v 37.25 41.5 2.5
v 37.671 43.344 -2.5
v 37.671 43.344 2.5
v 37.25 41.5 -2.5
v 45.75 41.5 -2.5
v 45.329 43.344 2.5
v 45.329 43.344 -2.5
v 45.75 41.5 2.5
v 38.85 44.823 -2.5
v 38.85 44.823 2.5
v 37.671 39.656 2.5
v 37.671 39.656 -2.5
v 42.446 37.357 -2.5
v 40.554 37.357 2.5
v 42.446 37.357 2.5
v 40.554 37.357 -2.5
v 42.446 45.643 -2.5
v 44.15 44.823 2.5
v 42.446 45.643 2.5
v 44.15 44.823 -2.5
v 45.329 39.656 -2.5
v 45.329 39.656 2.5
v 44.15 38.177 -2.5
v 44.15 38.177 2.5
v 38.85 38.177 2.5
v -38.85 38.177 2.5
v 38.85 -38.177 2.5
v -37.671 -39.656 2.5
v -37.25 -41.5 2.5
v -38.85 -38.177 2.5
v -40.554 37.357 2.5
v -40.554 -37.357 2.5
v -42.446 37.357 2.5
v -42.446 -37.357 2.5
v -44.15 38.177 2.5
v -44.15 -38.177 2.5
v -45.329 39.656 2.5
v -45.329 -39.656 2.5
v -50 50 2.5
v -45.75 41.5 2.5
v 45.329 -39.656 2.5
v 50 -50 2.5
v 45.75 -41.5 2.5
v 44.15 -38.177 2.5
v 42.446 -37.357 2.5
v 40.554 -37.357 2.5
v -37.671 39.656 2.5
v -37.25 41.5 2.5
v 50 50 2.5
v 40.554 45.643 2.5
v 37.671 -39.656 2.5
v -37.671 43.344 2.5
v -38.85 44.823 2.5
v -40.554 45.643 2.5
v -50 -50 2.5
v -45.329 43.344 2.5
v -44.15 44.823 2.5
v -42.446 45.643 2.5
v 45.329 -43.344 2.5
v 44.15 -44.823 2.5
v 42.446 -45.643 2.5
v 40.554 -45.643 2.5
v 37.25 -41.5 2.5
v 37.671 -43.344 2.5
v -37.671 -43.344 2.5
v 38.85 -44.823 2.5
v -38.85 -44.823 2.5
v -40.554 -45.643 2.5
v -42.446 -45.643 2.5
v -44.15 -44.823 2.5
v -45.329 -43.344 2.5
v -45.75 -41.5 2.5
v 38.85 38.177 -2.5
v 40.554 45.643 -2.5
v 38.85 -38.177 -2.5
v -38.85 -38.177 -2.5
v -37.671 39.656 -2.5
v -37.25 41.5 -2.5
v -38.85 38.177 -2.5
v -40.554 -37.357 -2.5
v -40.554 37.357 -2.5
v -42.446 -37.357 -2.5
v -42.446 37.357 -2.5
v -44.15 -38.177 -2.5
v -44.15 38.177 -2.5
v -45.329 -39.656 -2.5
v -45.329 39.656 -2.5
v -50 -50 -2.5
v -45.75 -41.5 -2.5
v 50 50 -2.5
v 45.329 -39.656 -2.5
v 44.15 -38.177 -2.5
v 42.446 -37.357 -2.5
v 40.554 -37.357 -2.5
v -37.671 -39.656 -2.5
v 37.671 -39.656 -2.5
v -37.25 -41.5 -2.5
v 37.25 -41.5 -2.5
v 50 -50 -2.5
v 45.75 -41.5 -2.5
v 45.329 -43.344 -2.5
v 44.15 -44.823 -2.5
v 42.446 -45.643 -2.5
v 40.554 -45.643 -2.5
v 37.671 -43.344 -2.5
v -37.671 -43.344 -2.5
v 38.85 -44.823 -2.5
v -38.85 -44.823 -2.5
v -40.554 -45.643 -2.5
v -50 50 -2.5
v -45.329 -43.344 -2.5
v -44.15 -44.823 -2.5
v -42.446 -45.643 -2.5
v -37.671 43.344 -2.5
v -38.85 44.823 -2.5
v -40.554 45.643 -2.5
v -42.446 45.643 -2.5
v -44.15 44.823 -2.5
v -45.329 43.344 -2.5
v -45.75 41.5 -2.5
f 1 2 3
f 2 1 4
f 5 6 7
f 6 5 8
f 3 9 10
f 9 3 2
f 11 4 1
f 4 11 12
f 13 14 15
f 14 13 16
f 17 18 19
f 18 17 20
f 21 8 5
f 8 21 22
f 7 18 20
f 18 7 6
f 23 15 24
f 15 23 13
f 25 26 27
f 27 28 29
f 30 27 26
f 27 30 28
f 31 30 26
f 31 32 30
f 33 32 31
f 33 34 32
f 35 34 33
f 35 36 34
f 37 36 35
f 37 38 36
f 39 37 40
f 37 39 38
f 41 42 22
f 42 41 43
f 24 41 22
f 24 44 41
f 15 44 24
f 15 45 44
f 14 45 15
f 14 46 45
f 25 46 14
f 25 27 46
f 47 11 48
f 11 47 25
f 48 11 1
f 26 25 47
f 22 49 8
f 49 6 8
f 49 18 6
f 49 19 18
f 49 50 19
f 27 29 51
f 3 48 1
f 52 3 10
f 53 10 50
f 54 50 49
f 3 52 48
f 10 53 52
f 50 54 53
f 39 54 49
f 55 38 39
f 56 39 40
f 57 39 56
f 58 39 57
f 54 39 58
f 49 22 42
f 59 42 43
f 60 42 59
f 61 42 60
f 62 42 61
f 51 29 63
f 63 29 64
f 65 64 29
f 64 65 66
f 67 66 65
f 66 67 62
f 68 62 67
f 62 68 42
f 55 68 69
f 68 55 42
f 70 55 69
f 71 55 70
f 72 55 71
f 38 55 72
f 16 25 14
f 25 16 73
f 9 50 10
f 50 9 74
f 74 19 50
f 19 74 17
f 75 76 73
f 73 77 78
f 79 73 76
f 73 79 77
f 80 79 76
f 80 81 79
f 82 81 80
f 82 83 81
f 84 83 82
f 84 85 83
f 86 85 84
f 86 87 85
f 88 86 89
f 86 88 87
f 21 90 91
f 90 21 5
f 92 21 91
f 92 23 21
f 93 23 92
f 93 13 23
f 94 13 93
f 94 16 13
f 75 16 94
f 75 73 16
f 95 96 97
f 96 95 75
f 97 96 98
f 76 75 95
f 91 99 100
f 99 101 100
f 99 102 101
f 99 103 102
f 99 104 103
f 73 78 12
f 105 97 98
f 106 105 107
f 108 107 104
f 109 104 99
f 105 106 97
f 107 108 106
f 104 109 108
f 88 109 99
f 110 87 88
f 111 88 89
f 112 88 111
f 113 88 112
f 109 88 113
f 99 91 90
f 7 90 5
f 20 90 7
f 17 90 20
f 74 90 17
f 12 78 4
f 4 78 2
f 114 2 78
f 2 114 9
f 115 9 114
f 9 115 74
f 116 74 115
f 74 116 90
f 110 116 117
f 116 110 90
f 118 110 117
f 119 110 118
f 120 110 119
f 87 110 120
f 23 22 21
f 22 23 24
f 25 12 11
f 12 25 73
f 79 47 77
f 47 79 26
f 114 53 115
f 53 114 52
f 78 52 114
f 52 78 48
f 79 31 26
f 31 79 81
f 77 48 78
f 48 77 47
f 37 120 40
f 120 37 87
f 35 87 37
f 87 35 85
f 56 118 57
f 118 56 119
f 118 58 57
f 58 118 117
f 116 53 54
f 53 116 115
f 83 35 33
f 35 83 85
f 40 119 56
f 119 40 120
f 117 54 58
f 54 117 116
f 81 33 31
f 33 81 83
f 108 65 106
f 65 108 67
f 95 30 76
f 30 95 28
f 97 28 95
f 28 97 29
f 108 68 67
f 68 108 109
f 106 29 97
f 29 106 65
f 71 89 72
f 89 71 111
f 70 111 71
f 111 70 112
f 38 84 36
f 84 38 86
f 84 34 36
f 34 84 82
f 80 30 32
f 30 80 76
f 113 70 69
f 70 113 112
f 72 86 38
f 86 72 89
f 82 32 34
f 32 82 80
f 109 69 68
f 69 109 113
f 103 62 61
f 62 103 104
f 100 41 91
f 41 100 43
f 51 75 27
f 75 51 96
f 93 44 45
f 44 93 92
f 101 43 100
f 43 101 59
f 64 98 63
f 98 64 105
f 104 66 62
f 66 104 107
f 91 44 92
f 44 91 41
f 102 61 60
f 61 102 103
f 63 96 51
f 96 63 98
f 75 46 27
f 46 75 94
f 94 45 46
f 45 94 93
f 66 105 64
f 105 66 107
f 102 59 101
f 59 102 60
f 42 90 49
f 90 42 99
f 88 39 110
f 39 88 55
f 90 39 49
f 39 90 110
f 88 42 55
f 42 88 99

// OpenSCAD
// Generated by SolidPython 1.1.3 on 2023-07-07 07:12:54


difference() {
	cube(center = true, size = [100, 100, 5]);
	union() {
		translate(v = [41.5000000000, 41.5000000000]) {
			cylinder(center = true, h = 5, r = 4.2500000000);
		}
		translate(v = [-41.5000000000, 41.5000000000]) {
			cylinder(center = true, h = 5, r = 4.2500000000);
		}
		translate(v = [-41.5000000000, -41.5000000000]) {
			cylinder(center = true, h = 5, r = 4.2500000000);
		}
		translate(v = [41.5000000000, -41.5000000000]) {
			cylinder(center = true, h = 5, r = 4.2500000000);
		}
	}
}
/***********************************************
*********      SolidPython code:      **********
************************************************
 
import solid
import numbers
import pudb
from solid.utils import *
import viewscad
import subprocess
import os
import os.path as osp
import math
import sys

chamfer_extrude=solid.import_scad("./chamfer_extrude.scad")
chamfer_extrude=chamfer_extrude.chamfer_extrude
r = viewscad.Renderer(width=800, height=800)

def debug(model,f_name,path="/home/ts/code/projects/mfd/designs/debug"):
    solid.scad_render_to_file(model,osp.join(path,f_name)+".scad")
#generate position list of wells using offset from center
wells_pos_from_center_4 = lambda offset: [[-offset,offset],
                                        [offset, offset],
                                        [-offset, -offset],
                                        [offset, -offset]]
#wells_pos_from_center_2 = lambda offset: [[0,offset],
#                                        [0, -offset]]
wells_pos_from_center_2 = lambda offset: [[offset,0],
                                        [-offset,0]]

def make_well(dims,shape=None,height=None,dxf=False):
    def circle_cylinder():
        if dxf or (height is None):
            well = solid.circle(r=dims, segments=64)
        else:
            well = solid.cylinder(r=dims, h=height, segments=64, center = True)
        return well
    if dims is None:
        sys.exit("radius needs to be a number")
    if isinstance(dims, numbers.Number):
        well =circle_cylinder()
    elif len(dims)==1:
        if isinstance(dims[1], numbers.Number):
            well =circle_cylinder()
        else:
            sys.exit("radius needs to be a number")
    elif len(dims)==2:
        well = solid.square(dims,center = True)
    elif len(dims)==3:
        well = solid.cube(dims, center = True)
    return well

def wells_top_bottom(center_gap,device_dims=None,shape=None,height=None, positions = None, dxf = False):
    well_shape = make_well(device_dims,shape=shape,height=height,dxf=dxf)
    wells = []
    if positions is None:
        offset = radius+radius/2.0
        positions = wells_pos_from_center_2(offset)
    if dxf or (height is None):
        height = 0
    for position in positions:
        if dxf:
            wells.append(solid.translate([position[0],position[1]])(well_shape))
        else:
            wells.append(solid.translate([position[0],position[1],height/2.0])(well_shape))
    return  union()(*wells)

#place wells in four corners 
def four_corner(radius,height=None, positions = None, dxf = False):
    #if well pos not specified set
    #to equally spaced by half radius
    if positions is None:
        offset = radius+radius/2.0
        positions = wells_pos_from_center_4(offset)
    if dxf or (height is None):
        height = 0
    #make wells at positions with specified radius and height
    wells = []
    for position in positions:
        #make circle if making dxf
        if dxf:
            well_shape = solid.circle(r=radius, segments=64)
            well_shape = solid.translate([position[0],position[1]])(well_shape)
        #if stl make cylinder
        else:
            well_shape = solid.cylinder(r=radius, h=height, segments=64, center = True)
            well_shape = solid.translate([position[0],position[1],height/2.0])(well_shape)
        wells.append(well_shape)
    return  union()(*wells)

#generate channels 
def make_channels(length,width,height=0,num_chans=1,max_chans=None,spacing=None, dxf = False,
                  rotate_channels=False):
    if dxf or (height is None):
        height = 0
    #if channel gap not defined, is equal to
    if spacing is None: spacing = width
    #calculate number of channels if fitting max num within given width
    if not max_chans is None:
        import math
        num_chans = math.floor((max_chans-spacing)/(width+spacing))
    #get total width of channel section  
    total_width = (width*num_chans)+(spacing*(num_chans-1))

    #make template channel
    #if rotate_channels: width, length = length, width
    if dxf:
        channel_t = solid.square([length,width],center = True)
    else:
        channel_t = solid.cube([length,width,height], center = True)

    #if number channels is even, offset the first channel to center its gap
    if num_chans % 2 == 0: centering = -(width/2.0+spacing/2.0)
    else: centering = 0
    #move template channel up to align bottom at z = 0 
    #and offset center if necessary
    if dxf:
        channel_t = solid.translate([0,centering])(channel_t)
    else:
        channel_t = solid.translate([0,centering,height/2.0])(channel_t)

    #if rotate_channels: length,width = width,length
    #start making the channels
    channels = []
    for i in range(num_chans):
        #if i=0 there is no translation
        #if i=1, we make the first channel adjacent to second
        direction = i

        #if i>=1, we add channels alternating left and right
        if i >= 1:
            direction = -(i/2.0)
            if i % 2 == 1: direction = (-direction)+0.5
                
        #make channel at right position and add it to channel list
        translation_coords = [0,direction*(width+spacing)]
        #if rotate_channels: translation_coords = [direction*(width+spacing),0]
        if dxf:
            channel = solid.translate(translation_coords)(channel_t)
        else:
            channel = solid.translate([*translation_coords,0])(channel_t)
        channels.append(channel)
    
    #group all channels as one object
    channels = union()(*channels)
    #compute the x,y,z dimensions in order to pass as arguments 
    #for construction of other parts of device (such as the chambers)
    measurements = {'x':(length/2.0,-length/2.0),
                    'y':(total_width/2.0,-total_width/2.0)}
    if not dxf:
        measurements['z'] = (height,0)
    if rotate_channels:
        channels = solid.rotate(90)(channels)
        measurements['x'],measurements['y']=measurements['y'],measurements['x']
    return channels,measurements

def make_chambers(msrs,height=None,extra=0,len_until=None,width=None, dxf = False):
    #computes x,y,z length
    total = lambda x : abs(x[0]) + abs(x[1])
    
    #if specific height if specified
    #otherwise use same height as channels
    if dxf:
        pass
    elif not height is None:
        msrs['z'] = (height,0)
    else:
        msrs['z'] = (0,0)
        
    #make copy of measurements from channels to modify chamber dimensions 
    #and add length to chambers as specified
    chamber_dims = msrs.copy()
    #calculate length of chamber to reach specified offset
    if not len_until is None:
        chamber_len = len_until-(msrs['x'][0])
    #or add specified length to channel length (if not specified, adds 0)
    else:
        chamber_len = msrs['x'][0]+extra
    #set the chamber length based 
    chamber_dims['x'] = (chamber_len/2.0,-(chamber_len/2.0))
    #compute final dimensions of chamber
    if not width is None:
        chamber_dims['y'] = (width/2.0,-width/2.0)
    chamber_dims = [total(size) for size in chamber_dims.values()]
        
    #calculate chamber translation offset to place adjacent to channels
    chamber_trslt = msrs['x'][0]+(chamber_len/2.0)
    #compute chamber translation coordinates to align with channels
    #x = 1 moves chamber above channels
    #x = -1 moves chamber below channels
    if dxf:
        trslt = lambda x : [x*(chamber_trslt),0]
    else:
        trslt = lambda x : [x*(chamber_trslt),0,msrs['z'][0]/2.0]
    
    #function to make chamber at top or at bottom 
    if dxf:
        move = lambda x : solid.translate(trslt(x))(solid.square(chamber_dims, center = True) )
    else:
        move = lambda x : solid.translate(trslt(x))(solid.cube(chamber_dims,center = True))
    #make top and bottom chambers and return them as grouped
    top = move(1)
    bottom = move(-1)
    #chambers=solid.rotate(90)(solid.union()(top,bottom))
    chambers=(solid.union()(top,bottom))

    return chambers

#create alignment features 
def alignment_features(unit,dims,grid_size, mask_size = None, alignment = "hollow", units_from_center = (2.5,2.5), corner_len=None):
    width = grid_size[0]*dims[0]
    length = grid_size[1]*dims[1]
    if mask_size is None and corner_len is None:
        corner_len = (dims[0] + dims[1]) /2 / 8
    corner = lambda thickness_div : solid.union()( solid.square([corner_len,corner_len/thickness_div],center=False), solid.square([corner_len/thickness_div,corner_len],center=False) )
    
    def make_full(thickness_div):
        thickness = corner_len/thickness_div
        tr = solid.translate([0, 0, 0 ])(solid.rotate(180)(corner(thickness_div)))
        tr = solid.translate([thickness/2,thickness/2,0])(tr)
        bl = solid.translate([0, 0, 0 ])(solid.rotate(0)(corner(thickness_div)))
        bl = solid.translate([-thickness/2,-thickness/2,0])(bl)
        return solid.union()(tr,bl)
    
    def make_hollow(thickness_div):
        thickness = corner_len/(thickness_div/2)
        inner = make_full(thickness_div)
        outer = make_full(thickness_div/2)
        hollow = outer - inner 
        return hollow
    
    center = (width /2 , length/2)
    mask_pos = lambda x,y : (center[0] + x*(float(units_from_center[0])*dims[0]), center[1] + y*(float(units_from_center[1])*dims[1]))
    positions = []
    positions.append(mask_pos(1,0))
    positions.append(mask_pos(0,1))
    positions.append(mask_pos(-1,0))
    positions.append(mask_pos(0,-1))
    make_mask = lambda mtype : make_hollow(8) if mtype == "hollow" else make_full(8)
    masks = [ solid.translate([*position,0])(make_mask(alignment)) for position in positions]
    
    solid.scad_render_to_file(solid.union()(*masks),"./designs/open_chamber/masks.scad")
    #return unit - solid.union()(*masks)
    return solid.union()(*masks,unit)

def create_outline(thickness, array, dims, grid_size,):
    width = grid_size[0]*dims[0] + thickness *2
    length = grid_size[1]*dims[1] + thickness *2
    outer = solid.translate([-thickness, -thickness,0])(solid.square([width, length]))
    return outer-array

def create_wall(wall_thickness, outline_thickness, dims, grid_size, wall_height = 2000, dxf = False):
    inner_width = grid_size[0]*dims[0] + outline_thickness *2
    inner_length = grid_size[1]*dims[1] + outline_thickness *2
    outer_width = inner_width + wall_thickness * 2
    outer_length = inner_length + wall_thickness * 2
    outer_pos_x = -outline_thickness-wall_thickness
    outer_pos_y = -outline_thickness-wall_thickness
    inner_pos_x = -outline_thickness
    inner_pos_y = -outline_thickness
    if dxf:
        inner_wall = solid.translate([inner_pos_x,
                                      inner_pos_y,
                                      0])(solid.square([inner_width, inner_length]))
        outer_wall = solid.translate([outer_pos_x,
                                      outer_pos_y,
                                      0])(solid.square([outer_width, outer_length]))

        return outer_wall-inner_wall
    else:
        inner_wall = solid.translate([inner_pos_x,
                                      inner_pos_y,
                                      0])(solid.cube([inner_width, inner_length,wall_height]))
        outer_wall = solid.translate([outer_pos_x,
                                      outer_pos_y,
                                      0])(solid.cube([outer_width, outer_length,wall_height]))

        return outer_wall-inner_wall, {'wall_height': wall_height,
                                       'wall_thickness': wall_thickness,
                                       'inner_width':inner_width,
                                       'inner_length': inner_length,
                                       'outer_width': outer_width,
                                       'outer_length': outer_length,
                                       'outer_pos_x' : outer_pos_x,
                                       'outer_pos_y' : outer_pos_y,
                                       'inner_pos_x' : inner_pos_x,
                                       'inner_pos_y' : inner_pos_y}

def create_thicker_wall(wall_thickness, outer_wall_offset, wall_dims, dims, grid_size, height_start = .2, height_end=2, dxf = False):
    addon_wall,thicker_wall_dims = create_wall(wall_thickness, outer_wall_offset, dims, grid_size, wall_height=height_end-height_start, dxf = False)
    addon_wall = solid.translate([0,0,height_start])(addon_wall)

    thicker_wall_dims['wall_height'] = height_end
    thicker_wall_dims['wall_thickness'] = wall_dims['wall_thickness'] + wall_thickness
    return addon_wall, thicker_wall_dims
 
def add_lock_to_wall(wall,wall_dims,y_offset = 0,cut_ratio=0.7,L_length=3, gap_ratio=0.05, axis="x",width_ratio=1/2):
    # Makes L shape
    def make_L(max_length,length_thickness,max_width,width_thickness,height,y_offset):
        length = solid.cube([max_length,length_thickness,height])
        width = solid.cube([width_thickness,max_width,height])
        width = solid.translate([max_length-(width_thickness),0,0])(width)
        L = solid.union()(width,length)
        debug(L,"L")
        if axis == "x":
            L = solid.rotate(-90)(L)
            L = solid.translate([0,max_length,0])(L)
        else:
            L = solid.rotate(-180)(L)
            L = solid.translate([max_length,max_width,0])(L)
        return solid.translate([0,0,y_offset])(L)
    
    lock_length = L_length
    lock_width = wall_dims['wall_thickness']*width_ratio
    lock_length_thickness = lock_width/2
    lock_width_thickness = lock_width/2
    L_lock = make_L(lock_length,lock_length_thickness,lock_width,lock_width_thickness, wall_dims['wall_height']-y_offset, y_offset)
    
    margin_space = lock_length - lock_length*(1-gap_ratio)
    key_length = lock_length-margin_space
    key_length_thickness = lock_length_thickness-(margin_space*2)
    key_width = lock_width-(margin_space*2)
    key_width_thickness = lock_width_thickness-(margin_space*2)
    L_key = make_L(key_length,key_length_thickness,key_width,key_width_thickness, wall_dims['wall_height']-y_offset, y_offset)
    L_key = solid.translate([margin_space,margin_space,0])(L_key)
    L = solid.union()(L_lock,L_key)
    debug(L,"L")
    
    #Make cube to be used as negative to split frame in a half
    #Can choose if making left or right negative, specify ratio of split
    def make_negative(right,cut_ratio):
        if axis == "x":
            if right:
                length = wall_dims['outer_length']*(1-cut_ratio)
                pos_x = wall_dims['outer_pos_x']+(wall_dims['outer_length']*cut_ratio)
            else:
                length = wall_dims['outer_length']*(cut_ratio)
                pos_x = wall_dims['outer_pos_x'] 
            negative = solid.cube([wall_dims['outer_width'],length, wall_dims['wall_height']])
            negative = solid.translate([wall_dims['outer_pos_y'],pos_x,0])(negative)
        else:
            if right:
                length = wall_dims['outer_width']*(1-cut_ratio)
                pos_x = wall_dims['outer_pos_y']+(wall_dims['outer_width']*cut_ratio)
            else:
                length = wall_dims['outer_width']*(cut_ratio)
                pos_x = wall_dims['outer_pos_y'] 
            negative = solid.cube([length,wall_dims['outer_length'], wall_dims['wall_height']])
            negative = solid.translate([pos_x,wall_dims['outer_pos_x'],0])(negative)
        return negative, pos_x, length 
                      
    #Make negatives
    negative_right, right_half_pos_x, right_half_length = make_negative(True,cut_ratio)
    negative_left, left_half_pos_x, right_half_length = make_negative(False,cut_ratio)
    #Make halves
    left_half = solid.difference()(wall,negative_right)
    right_half = solid.difference()(wall,negative_left)
    def place_L(L, L_length,L_width):
        #Place L on top wall       
        offset_to_center = (wall_dims['wall_thickness']-L_width)/2
        if axis == "x":
            y_pos_top = (wall_dims['outer_pos_y'] +
                    wall_dims['outer_width'] - 
                    L_width - offset_to_center)
            top_L = solid.translate([y_pos_top,
                                     right_half_pos_x-(L_length),
                                     0])(L)
            #Place L on bottom wall       
            y_pos_bottom = wall_dims['outer_pos_y']+offset_to_center
            bottom_L = solid.translate([y_pos_bottom,
                                        right_half_pos_x-L_length,
                                        0])(L)
        else:
            y_pos_top = (wall_dims['outer_pos_x'] +
                    wall_dims['outer_length'] -
                    (L_width+offset_to_center))
            top_L = solid.translate([right_half_pos_x-L_length,
                                     y_pos_top,
                                     0])(L)
            #Place L on bottom wall       
            y_pos_bottom = wall_dims['outer_pos_y']+offset_to_center
            bottom_L = solid.translate([right_half_pos_x-L_length,
                                        y_pos_bottom,
                                        0])(L)
        return bottom_L, top_L
    #Make complimentary L pieces through union and differences
    #Make Lock
    bottom_L_lock, top_L_lock = place_L(L_lock,L_length,lock_width)
    left_half = solid.difference()(left_half,bottom_L_lock)
    left_half = solid.difference()(left_half,top_L_lock)
    #Make Key
    bottom_L_key, top_L_key = place_L(L_key,L_length,lock_width)
    right_half = solid.union()(right_half,bottom_L_key)
    right_half = solid.union()(right_half,top_L_key)
    return left_half, right_half


#build a row x col grid of containment units
def make_unit_array(unit,dims,grid_size, dxf = False, alignment = None, mask_size = None,
                    units_from_center = None,alignment_offset=None, alignment_mark_size=1):
    units = []
    for col in range(grid_size[1]):
        for row in range(grid_size[0]):
            if dxf:
                units.append(solid.translate([row*dims[0],col*dims[1]])(unit))
            else:
                units.append(solid.translate([row*dims[0],col*dims[1],dims[2]/2.0])(unit))
    array = solid.union()(*units)
    if (not alignment is None) and dxf:
        if not alignment_offset is None:
            array = solid.translate([alignment_offset[0],alignment_offset[1]])(array)
        array = alignment_features(array,dims, grid_size, alignment = alignment, mask_size = None, units_from_center = units_from_center,corner_len=alignment_mark_size)
        if not alignment_offset is None:
            array = solid.translate([-alignment_offset[0],-alignment_offset[1]])(array)
    return array


def make_taylor(wells_pos = wells_pos_from_center_4(2.25), well_rad = 1.5 ,
                well_height = 2, chan_w = 0.01, chan_l = 1, chan_h = 0.010 ,
                chan_gap = 0.040, max_chans = None,num_chans=100, chamber_height  = 0.100,
                columns = 1, rows = 1, chamber_len_until=2.25, add_channels = True, add_wells = True, 
                add_chambers = True, save_path = "./", alignment = None, units_from_center = 2,
                mask_size = None, render_stl = False, outline_thickness = 0.050, dxf = True,
                wall_height = 15, wall_thickness = 0.95, casing_x=9, casing_y=9, casing_z=0,rotate_units=0):

    dims = [casing_x, casing_y, casing_z]
    wells = four_corner(well_rad,well_height, dxf = dxf, positions = wells_pos)
    debug(wells,"wells")
    channels, msrs = make_channels(chan_l,chan_w,chan_h,dxf=dxf, spacing = chan_gap, max_chans=max_chans,num_chans=num_chans)
    debug(channels,"channels")
    chambers = make_chambers(msrs,dxf = dxf, height=chamber_height,len_until=chamber_len_until)
    debug(chambers,"chambers")

    #add together and render
    device_parts = []
    if add_channels:
        device_parts.append(channels)
    if add_wells:
        device_parts.append(wells)
    if add_chambers:
        device_parts.append(chambers)
    device=union()(*device_parts)
    device = rotate(rotate_units)(device)

    device=solid.translate([dims[0]/2.0,dims[1]/2.0,0])(device)
    channels = rotate(rotate_units)(channels)
    channels=solid.translate([dims[0]/2,dims[1]/2,0])(channels)
    chambers_wells = union()(wells,chambers)
    chambers_wells = rotate(rotate_units)(chambers_wells)
    chambers_wells=solid.translate([dims[0]/2,dims[1]/2,0])(chambers_wells)

    file_name = str(rows)+'x'+str(columns)+'_units_'
    grid_size = [rows,columns]

    if alignment:
        alignment="full"
    device = make_unit_array(device,dims,grid_size, dxf=dxf, alignment = alignment,
                                 units_from_center = units_from_center)
    channels = make_unit_array(channels,dims,grid_size, dxf=dxf, alignment = alignment,
                                 units_from_center = units_from_center)
    if alignment=="full":
        alignment="hollow"

    chambers_wells = make_unit_array(chambers_wells,dims,grid_size, dxf=dxf, alignment = alignment,
                                 units_from_center =units_from_center)

    def save_model(model,prefix):
        model_fname = os.path.abspath(save_path+prefix+"_"+file_name+".scad")
        solid.scad_render_to_file(model,model_fname)
        return model_fname

    wells_fname = save_model(wells,"wells")
    channels_fname = save_model(channels,"channels")
    device_fname = save_model(device,"device")
    chambers_wells_fname = save_model(chambers_wells,"chambers_wells")
    return (chambers_wells,chambers_wells_fname), (channels,channels_fname), (device,device_fname)

def make_device(design='open',rows=8,columns=6,wells_pos = 4.5,well_offset=3.2, well_rad=3.2,well_height=0.1,
                chan_l=1,chan_w=0.01,chan_h=0.01,chan_gap=0.015,num_chans=101,dxf=True,save_path="./designs/open_chamber/",
                casing_x=9.0,casing_y=18.0,casing_z=0,rotate_units=90,units_from_center=(3,1),chamber_len_until=4.5,
                chamber_width=None,alignment=True, add_wells=True, add_channels=True,add_chambers=True):

    dims = [casing_x, casing_y, casing_z]
    if design == "open":
        wells_pos=wells_pos_from_center_2(wells_pos)
        wells = wells_top_bottom(well_offset*2,device_dims=well_rad,height=well_height, dxf = dxf, positions = wells_pos)
    elif design == "closed":
        wells_pos=wells_pos_from_center_4(wells_pos)
        debug(wells,"wells")
        wells = four_corner(well_offset,well_heightdevice_dims=well_rad, dxf = dxf, positions = wells_pos)
    else:
        print(design+" is not a valid design.\n Choose valid design: 'open' or 'closed'")
        exit()
    wells = rotate(rotate_units)(wells)
    wells=solid.translate([dims[0]/2,dims[1]/2,0])(wells)
    debug(wells,"wells")

    channels, msrs = make_channels(chan_l,chan_w,chan_h,dxf=dxf, spacing = chan_gap, num_chans=num_chans,rotate_channels=False)
    channels = rotate(rotate_units)(channels)
    channels=solid.translate([dims[0]/2,dims[1]/2,0])(channels)

    chambers=make_chambers(msrs,height=None,extra=0,len_until=chamber_len_until, width=chamber_width,dxf = dxf)
    chambers = rotate(rotate_units)(chambers)
    chambers=solid.translate([dims[0]/2,dims[1]/2,0])(chambers)

    device_parts = []
    if add_channels:
        device_parts.append(channels)
    if add_wells:
        device_parts.append(wells)
    if add_chambers:
        device_parts.append(chambers)
    device = union()(*device_parts)
    #device = rotate(rotate_units)(device)
    #device=solid.translate([dims[0]/2.0,dims[1]/2.0,0])(device)

    chambers_wells = []
    if add_chambers:
        chambers_wells.append(chambers)
    if add_wells:
        chambers_wells.append(wells)
    chambers_wells = union()(*chambers_wells)
    #chambers_wells = union()(wells,chambers)
    #chambers_wells = rotate(rotate_units)(chambers_wells)
    #chambers_wells=solid.translate([dims[0]/2,dims[1]/2,0])(chambers_wells)

    file_name = str(rows)+'x'+str(columns)+'_units_'

    grid_size = [rows,columns]
    if alignment:
        alignment="full"
    device = make_unit_array(device,dims,grid_size, dxf=dxf, alignment = alignment,
                                 units_from_center = units_from_center)
    channels = make_unit_array(channels,dims,grid_size, dxf=dxf, alignment = alignment,
                                 units_from_center = units_from_center)
    if alignment=="full":
        alignment="hollow"

    chambers_wells = make_unit_array(chambers_wells,dims,grid_size, dxf=dxf, alignment = alignment,
                                 units_from_center =units_from_center)

    def save_model(model,prefix):
        model_fname = os.path.abspath(save_path+prefix+"_"+file_name+".scad")
        solid.scad_render_to_file(model,model_fname)
        return model_fname

    wells_fname = save_model(wells,"wells")
    channels_fname = save_model(channels,"channels")
    device_fname = save_model(device,"device")
    chambers_wells_fname = save_model(chambers_wells,"chambers_wells")
    return (chambers_wells,chambers_wells_fname), (channels,channels_fname), (device,device_fname)


def make_open_chamber(rows=8,columns=6,wells_pos = wells_pos_from_center_2(4.5), well_rad=3.2,well_height=0.1,
                      chan_l=1,chan_w=0.01,chan_h=0.01,chan_gap=0.015,num_chans=101,dxf=True,save_path="./designs/open_chamber/",
                      casing_x=9.0,casing_y=18.0,casing_z=0,rotate_units=90,units_from_center=(3,1),chamber_len_until=4.5,
                      chamber_width=None,alignment=True, add_wells=True, add_channels=True,add_chambers=True):

    dims = [casing_x, casing_y, casing_z]
    wells = wells_top_bottom(well_rad,height=well_height, dxf = dxf, positions = wells_pos)
    channels, msrs = make_channels(chan_l,chan_w,chan_h,dxf=dxf, spacing = chan_gap, num_chans=num_chans,rotate_channels=False)
    chambers=make_chambers(msrs,height=None,extra=0,len_until=chamber_len_until, width=chamber_width,dxf = dxf)
    debug(chambers,"chambers")
    device_parts = []
    if add_channels:
        device_parts.append(channels)
    if add_wells:
        device_parts.append(wells)
    if add_chambers:
        device_parts.append(chambers)
    device = union()(*device_parts)
    device = rotate(rotate_units)(device)
    device=solid.translate([dims[0]/2.0,dims[1]/2.0,0])(device)
    channels = rotate(rotate_units)(channels)
    channels=solid.translate([dims[0]/2,dims[1]/2,0])(channels)
    chambers_wells = union()(wells,chambers)
    chambers_wells = rotate(rotate_units)(chambers_wells)
    chambers_wells=solid.translate([dims[0]/2,dims[1]/2,0])(chambers_wells)

    file_name = str(rows)+'x'+str(columns)+'_units_'

    grid_size = [rows,columns]
    if alignment:
        alignment="full"
    device = make_unit_array(device,dims,grid_size, dxf=dxf, alignment = alignment,
                                 units_from_center = units_from_center)
    channels = make_unit_array(channels,dims,grid_size, dxf=dxf, alignment = alignment,
                                 units_from_center = units_from_center)
    if alignment=="full":
        alignment="hollow"

    chambers_wells = make_unit_array(chambers_wells,dims,grid_size, dxf=dxf, alignment = alignment,
                                 units_from_center =units_from_center)

    def save_model(model,prefix):
        model_fname = os.path.abspath(save_path+prefix+"_"+file_name+".scad")
        solid.scad_render_to_file(model,model_fname)
        return model_fname

    wells_fname = save_model(wells,"wells")
    channels_fname = save_model(channels,"channels")
    device_fname = save_model(device,"device")
    chambers_wells_fname = save_model(chambers_wells,"chambers_wells")
    return (chambers_wells,chambers_wells_fname), (channels,channels_fname), (device,device_fname)

def to_dxf(scad_path):
    dxf_path = scad_path.replace(".scad",".dxf")
    subprocess.call(["openscad", "-o", dxf_path, scad_path])
    import ezdxf
    temp_dxf = ezdxf.readfile(dxf_path)
    temp_dxf.saveas(dxf_path)

#def make_walls(diameter,thickness,grid_size,dims,height=20,segments=256,make_inner=True):
#    wafer_wall_out = solid.cylinder(r=diameter/2,h=height, segments=segments)
#    wafer_wall_in = solid.cylinder(r=(diameter/2-thickness),h=height, segments=segments)
#    wafer_wall = solid.difference()(wafer_wall_out,wafer_wall_in)
#    wafer_wall = solid.translate([grid_size[1]*dims[1]/2.0,grid_size[0]*dims[0]/2.0])(wafer_wall)
#
#    vertical_wall_length = grid_size[1]*dims[1]
#    horizontal_wall_length = grid_size[0]*dims[0]
#    vertical_wall = solid.cube([vertical_wall_length,thickness,height],center = True)
#    vertical_wall = solid.translate([vertical_wall_length/2,0,height/2])(vertical_wall)
#    horizontal_wall = solid.cube([thickness,horizontal_wall_length,height],center = True)
#    horizontal_wall = solid.translate([0,vertical_wall_length/2,height/2])(horizontal_wall)
#    walls = []
#    walls.append(horizontal_wall)
#    walls.append(vertical_wall)
#    for col in range(grid_size[1]):
#        if col == grid_size[1]-1: 
#            walls.append(solid.translate([0,(col+1)*dims[1]])(vertical_wall))
#        elif col > 0 and col < grid_size[1]-1 and make_inner==True:
#            walls.append(solid.translate([0,(col+1)*dims[1]])(vertical_wall))
#    for row in range(grid_size[0]):
#        if row == grid_size[0]-1: 
#            walls.append(solid.translate([(row+1)*dims[0],0])(horizontal_wall))
#        elif row > 0 and row < grid_size[0]-1 and make_inner==True:
#            walls.append(solid.translate([(row+1)*dims[0],0])(horizontal_wall))
#    walls = union()(*walls)
#    wafer_walls = union()(walls,wafer_wall)
#    return walls,wafer_wall,wafer_walls

def make_walls(diameter,thickness,grid_size,dims,height=20,segments=256,make_inner=True,padx=0,pady=0):
    wafer_wall_out = solid.cylinder(r=diameter/2,h=height, segments=segments)
    wafer_wall_in = solid.cylinder(r=(diameter/2-thickness),h=height, segments=segments)
    wafer_wall = solid.difference()(wafer_wall_out,wafer_wall_in)
    wafer_wall = solid.translate([grid_size[1]*dims[1]/2.0,grid_size[0]*dims[0]/2.0])(wafer_wall)

    vertical_wall_length = grid_size[0]*dims[0]+padx
    horizontal_wall_length = grid_size[1]*dims[1]+pady
    vertical_wall = solid.cube([vertical_wall_length,thickness,height],center = True)
    vertical_wall = solid.translate([vertical_wall_length/2-pady/2,-padx/2,height/2])(vertical_wall)
    horizontal_wall = solid.cube([thickness,horizontal_wall_length,height],center = True)
    horizontal_wall = solid.translate([-pady/2,horizontal_wall_length/2-padx/2,height/2])(horizontal_wall)
    walls = []
    walls.append(horizontal_wall)
    walls.append(vertical_wall)
    for col in range(grid_size[1]):
        if col == grid_size[1]-1: 
            walls.append(solid.translate([0,(col+1)*dims[1]+pady])(vertical_wall))
        elif col > 0 and col < grid_size[1]-1 and make_inner==True:
            walls.append(solid.translate([0,(col+1)*dims[1]])(vertical_wall))
    for row in range(grid_size[0]):
        if row == grid_size[0]-1: 
            walls.append(solid.translate([(row+1)*dims[0]+padx,0])(horizontal_wall))
        elif row > 0 and row < grid_size[0]-1 and make_inner==True:
            walls.append(solid.translate([(row+1)*dims[0],0])(horizontal_wall))
    walls = union()(*walls)
    wafer_walls = union()(walls,wafer_wall)
    return walls,wafer_wall,wafer_walls

def save_model(model,base_path,base_name,dxf=True):
    if not os.path.exists(base_path):
        os.makedirs(base_path)
    dxf_path=osp.join(base_path,base_name+".scad")
    solid.scad_render_to_file(model,osp.join(dxf_path))
    if dxf:
        to_dxf(dxf_path)

def make_wafer(diameter,flat_len,thickness):
    wafer = solid.cylinder(r1=diameter/2,r2=diameter/2,h=thickness,segments=512,)()
    x_start_flat=(flat_len/2)
    y_start_flat = math.sqrt(((diameter/2)**2) - (x_start_flat**2) )
    height_delete_flat=diameter/2-y_start_flat
    flat_delete = solid.cube([flat_len,height_delete_flat,thickness],center=False)()
    flat_delete = solid.translate([-flat_len/2,y_start_flat,0])(flat_delete)
    wafer = solid.difference()(wafer,flat_delete)
    wafer = solid.rotate(90)(wafer)
    return wafer

def add_wafer_to_mask(wafer_size,flat_len,mask,grid_size,dims,wafer_line_thickness=0.1,outer_mask_thickness=5,alignment_offset=None):
    def make_wafer_mask(wafer_size,flat_len):
        wafer_mask = make_wafer(wafer_size,flat_len,1)
        wafer_mask = solid.projection()(wafer_mask)
        wafer_mask = solid.translate([grid_size[0]*dims[0]/2.0,grid_size[1]*dims[1]/2.0])(wafer_mask)
        if not alignment_offset is None:
            wafer_mask = solid.translate([-alignment_offset[0],-alignment_offset[1]])(wafer_mask)
        return wafer_mask

    inner_wafer_line_mask = make_wafer_mask(wafer_size-wafer_line_thickness/2,flat_len)
    outer_wafer_line_mask = make_wafer_mask(wafer_size+wafer_line_thickness/2,flat_len)
    outer_wafer_mask = make_wafer_mask(wafer_size+outer_mask_thickness,flat_len)
    outer_wafer_mask = solid.difference()(outer_wafer_mask,outer_wafer_line_mask)
    wafer_mask = solid.union()(outer_wafer_mask,inner_wafer_line_mask)

    return solid.difference()(wafer_mask,mask)

def make_posts(post_shape,post_height):
    posts = solid.linear_extrude(height=post_height)(post_shape)
    return posts

def make_wafer_empty(diameter,flat_len,thickness,margin,notch_len=20,notch_height=5,oversize=1.01):
    diameter*=oversize
    flat_len*=oversize
    wafer = make_wafer(diameter,flat_len,thickness)
    holder = solid.cylinder(r1=diameter/2+margin,r2=diameter/2+margin,h=thickness,segments=512)()
    holder = solid.difference()(holder,wafer)

    x_start_flat=(flat_len/2)
    y_start_flat = math.sqrt(((diameter/2)**2) - (x_start_flat**2) )
    height_delete_flat=diameter/2-y_start_flat
    notch = solid.cube([notch_len,notch_height,thickness],center=False)()
    notch = solid.translate([-notch_len/2,y_start_flat,0])(notch)
    notch = solid.rotate(90)(notch)
    return solid.difference()(holder,notch)

def wafer_print_calibration(diameter,thickness,height,z_offset):
    circles = []
    radii = []
    radii.append(diameter/2.0*0.8)
    radii.append(diameter/2.0*0.6)
    radii.append(diameter/2.0*0.4)
    radii.append(diameter/2.0*0.2)
    for radius in radii:
        inner = solid.cylinder(r1=radius-(thickness/2.0),r2=radius-(thickness/2.0),h=thickness,segments=512,)()
        outer = solid.cylinder(r1=radius+(thickness/2.0),r2=radius+(thickness/2.0),h=thickness,segments=512,)()
        diff = solid.difference()(outer,inner)
        circles.append(diff)
    circles = solid.union()(*circles)
    circles = solid.translate([0,0,z_offset])(circles)
    return circles

def make_rack(wells,dims,grid_size,alignment_offset,rack_x,rack_y,rack_thickness,bolt_width,add_bolts=True):

    #get X and Y dimensions of gride of pipette tips
    X_len = dims[0]*grid_size[0]
    Y_len = dims[1]*grid_size[1]
    #make rack
    rack = solid.cube([rack_x,rack_y,rack_thickness],center=True)

    if add_bolts:
    #add bolt holes
        bolt_hole=solid.cylinder(r=bolt_width/2,h=rack_thickness,center=True)()
        bolt_holes = []
        bolt_holes.append(solid.translate([rack_x/2-1.5*bolt_width,rack_y/2-1.5*bolt_width])(bolt_hole))
        bolt_holes.append(solid.translate([-rack_x/2+1.5*bolt_width,rack_y/2-1.5*bolt_width])(bolt_hole))
        bolt_holes.append(solid.translate([-rack_x/2+1.5*bolt_width,-rack_y/2+1.5*bolt_width])(bolt_hole))
        bolt_holes.append(solid.translate([rack_x/2-1.5*bolt_width,-rack_y/2+1.5*bolt_width])(bolt_hole))
        bolt_holes = solid.union()(*bolt_holes)
        rack=solid.difference()(rack,bolt_holes)
    rack_support = rack

    #center rack with pipette holes
    rack = solid.translate([0,0,rack_thickness/2])(rack)
    rack = solid.translate([X_len/2,Y_len/2])(rack)
    rack = solid.translate([-alignment_offset[0],-alignment_offset[1]])(rack)
    wells = solid.linear_extrude(height=rack_thickness)(wells)
    rack = solid.difference()(rack,wells)
    return rack, rack_support

def make_pillar(wells,dims,grid_size,alignment_offset,rack_x,rack_y,pillar_height,rack_thickness,bolt_width,add_bolts=True,taper_angle=1,bolt_position_corner=1.5):

    #get X and Y dimensions of gride of pipette tips
    X_len = dims[0]*grid_size[0]
    Y_len = dims[1]*grid_size[1]
    #make rack
    rack = solid.cube([rack_x,rack_y,rack_thickness],center=True)
    
    if add_bolts:
    #add bolt holes
        bolt_hole=solid.cylinder(r=bolt_width/2,h=rack_thickness,center=True)()
        bolt_holes = []
        bolt_holes.append(solid.translate([rack_x/2-bolt_position_corner*bolt_width,rack_y/2-bolt_position_corner*bolt_width])(bolt_hole))
        bolt_holes.append(solid.translate([-rack_x/2+bolt_position_corner*bolt_width,rack_y/2-bolt_position_corner*bolt_width])(bolt_hole))
        bolt_holes.append(solid.translate([-rack_x/2+bolt_position_corner*bolt_width,-rack_y/2+bolt_position_corner*bolt_width])(bolt_hole))
        bolt_holes.append(solid.translate([rack_x/2-bolt_position_corner*bolt_width,-rack_y/2+bolt_position_corner*bolt_width])(bolt_hole))
        bolt_holes = solid.union()(*bolt_holes)
        rack=solid.difference()(rack,bolt_holes)
    rack_support = rack

    #center rack with pipette holes
    #rack = solid.translate([0,0,-rack_thickness])(rack)
    rack = solid.translate([X_len/2,Y_len/2])(rack)
    rack = solid.translate([-alignment_offset[0],-alignment_offset[1]])(rack)
    if not taper_angle == 0:
        wells=chamfer_extrude(pillar_height,taper_angle,segments=20)(wells)
    else:
        wells = solid.linear_extrude(height=pillar_height)(wells)
    rack = solid.union()(rack,wells)
    return rack, rack_support









 
 
************************************************/
